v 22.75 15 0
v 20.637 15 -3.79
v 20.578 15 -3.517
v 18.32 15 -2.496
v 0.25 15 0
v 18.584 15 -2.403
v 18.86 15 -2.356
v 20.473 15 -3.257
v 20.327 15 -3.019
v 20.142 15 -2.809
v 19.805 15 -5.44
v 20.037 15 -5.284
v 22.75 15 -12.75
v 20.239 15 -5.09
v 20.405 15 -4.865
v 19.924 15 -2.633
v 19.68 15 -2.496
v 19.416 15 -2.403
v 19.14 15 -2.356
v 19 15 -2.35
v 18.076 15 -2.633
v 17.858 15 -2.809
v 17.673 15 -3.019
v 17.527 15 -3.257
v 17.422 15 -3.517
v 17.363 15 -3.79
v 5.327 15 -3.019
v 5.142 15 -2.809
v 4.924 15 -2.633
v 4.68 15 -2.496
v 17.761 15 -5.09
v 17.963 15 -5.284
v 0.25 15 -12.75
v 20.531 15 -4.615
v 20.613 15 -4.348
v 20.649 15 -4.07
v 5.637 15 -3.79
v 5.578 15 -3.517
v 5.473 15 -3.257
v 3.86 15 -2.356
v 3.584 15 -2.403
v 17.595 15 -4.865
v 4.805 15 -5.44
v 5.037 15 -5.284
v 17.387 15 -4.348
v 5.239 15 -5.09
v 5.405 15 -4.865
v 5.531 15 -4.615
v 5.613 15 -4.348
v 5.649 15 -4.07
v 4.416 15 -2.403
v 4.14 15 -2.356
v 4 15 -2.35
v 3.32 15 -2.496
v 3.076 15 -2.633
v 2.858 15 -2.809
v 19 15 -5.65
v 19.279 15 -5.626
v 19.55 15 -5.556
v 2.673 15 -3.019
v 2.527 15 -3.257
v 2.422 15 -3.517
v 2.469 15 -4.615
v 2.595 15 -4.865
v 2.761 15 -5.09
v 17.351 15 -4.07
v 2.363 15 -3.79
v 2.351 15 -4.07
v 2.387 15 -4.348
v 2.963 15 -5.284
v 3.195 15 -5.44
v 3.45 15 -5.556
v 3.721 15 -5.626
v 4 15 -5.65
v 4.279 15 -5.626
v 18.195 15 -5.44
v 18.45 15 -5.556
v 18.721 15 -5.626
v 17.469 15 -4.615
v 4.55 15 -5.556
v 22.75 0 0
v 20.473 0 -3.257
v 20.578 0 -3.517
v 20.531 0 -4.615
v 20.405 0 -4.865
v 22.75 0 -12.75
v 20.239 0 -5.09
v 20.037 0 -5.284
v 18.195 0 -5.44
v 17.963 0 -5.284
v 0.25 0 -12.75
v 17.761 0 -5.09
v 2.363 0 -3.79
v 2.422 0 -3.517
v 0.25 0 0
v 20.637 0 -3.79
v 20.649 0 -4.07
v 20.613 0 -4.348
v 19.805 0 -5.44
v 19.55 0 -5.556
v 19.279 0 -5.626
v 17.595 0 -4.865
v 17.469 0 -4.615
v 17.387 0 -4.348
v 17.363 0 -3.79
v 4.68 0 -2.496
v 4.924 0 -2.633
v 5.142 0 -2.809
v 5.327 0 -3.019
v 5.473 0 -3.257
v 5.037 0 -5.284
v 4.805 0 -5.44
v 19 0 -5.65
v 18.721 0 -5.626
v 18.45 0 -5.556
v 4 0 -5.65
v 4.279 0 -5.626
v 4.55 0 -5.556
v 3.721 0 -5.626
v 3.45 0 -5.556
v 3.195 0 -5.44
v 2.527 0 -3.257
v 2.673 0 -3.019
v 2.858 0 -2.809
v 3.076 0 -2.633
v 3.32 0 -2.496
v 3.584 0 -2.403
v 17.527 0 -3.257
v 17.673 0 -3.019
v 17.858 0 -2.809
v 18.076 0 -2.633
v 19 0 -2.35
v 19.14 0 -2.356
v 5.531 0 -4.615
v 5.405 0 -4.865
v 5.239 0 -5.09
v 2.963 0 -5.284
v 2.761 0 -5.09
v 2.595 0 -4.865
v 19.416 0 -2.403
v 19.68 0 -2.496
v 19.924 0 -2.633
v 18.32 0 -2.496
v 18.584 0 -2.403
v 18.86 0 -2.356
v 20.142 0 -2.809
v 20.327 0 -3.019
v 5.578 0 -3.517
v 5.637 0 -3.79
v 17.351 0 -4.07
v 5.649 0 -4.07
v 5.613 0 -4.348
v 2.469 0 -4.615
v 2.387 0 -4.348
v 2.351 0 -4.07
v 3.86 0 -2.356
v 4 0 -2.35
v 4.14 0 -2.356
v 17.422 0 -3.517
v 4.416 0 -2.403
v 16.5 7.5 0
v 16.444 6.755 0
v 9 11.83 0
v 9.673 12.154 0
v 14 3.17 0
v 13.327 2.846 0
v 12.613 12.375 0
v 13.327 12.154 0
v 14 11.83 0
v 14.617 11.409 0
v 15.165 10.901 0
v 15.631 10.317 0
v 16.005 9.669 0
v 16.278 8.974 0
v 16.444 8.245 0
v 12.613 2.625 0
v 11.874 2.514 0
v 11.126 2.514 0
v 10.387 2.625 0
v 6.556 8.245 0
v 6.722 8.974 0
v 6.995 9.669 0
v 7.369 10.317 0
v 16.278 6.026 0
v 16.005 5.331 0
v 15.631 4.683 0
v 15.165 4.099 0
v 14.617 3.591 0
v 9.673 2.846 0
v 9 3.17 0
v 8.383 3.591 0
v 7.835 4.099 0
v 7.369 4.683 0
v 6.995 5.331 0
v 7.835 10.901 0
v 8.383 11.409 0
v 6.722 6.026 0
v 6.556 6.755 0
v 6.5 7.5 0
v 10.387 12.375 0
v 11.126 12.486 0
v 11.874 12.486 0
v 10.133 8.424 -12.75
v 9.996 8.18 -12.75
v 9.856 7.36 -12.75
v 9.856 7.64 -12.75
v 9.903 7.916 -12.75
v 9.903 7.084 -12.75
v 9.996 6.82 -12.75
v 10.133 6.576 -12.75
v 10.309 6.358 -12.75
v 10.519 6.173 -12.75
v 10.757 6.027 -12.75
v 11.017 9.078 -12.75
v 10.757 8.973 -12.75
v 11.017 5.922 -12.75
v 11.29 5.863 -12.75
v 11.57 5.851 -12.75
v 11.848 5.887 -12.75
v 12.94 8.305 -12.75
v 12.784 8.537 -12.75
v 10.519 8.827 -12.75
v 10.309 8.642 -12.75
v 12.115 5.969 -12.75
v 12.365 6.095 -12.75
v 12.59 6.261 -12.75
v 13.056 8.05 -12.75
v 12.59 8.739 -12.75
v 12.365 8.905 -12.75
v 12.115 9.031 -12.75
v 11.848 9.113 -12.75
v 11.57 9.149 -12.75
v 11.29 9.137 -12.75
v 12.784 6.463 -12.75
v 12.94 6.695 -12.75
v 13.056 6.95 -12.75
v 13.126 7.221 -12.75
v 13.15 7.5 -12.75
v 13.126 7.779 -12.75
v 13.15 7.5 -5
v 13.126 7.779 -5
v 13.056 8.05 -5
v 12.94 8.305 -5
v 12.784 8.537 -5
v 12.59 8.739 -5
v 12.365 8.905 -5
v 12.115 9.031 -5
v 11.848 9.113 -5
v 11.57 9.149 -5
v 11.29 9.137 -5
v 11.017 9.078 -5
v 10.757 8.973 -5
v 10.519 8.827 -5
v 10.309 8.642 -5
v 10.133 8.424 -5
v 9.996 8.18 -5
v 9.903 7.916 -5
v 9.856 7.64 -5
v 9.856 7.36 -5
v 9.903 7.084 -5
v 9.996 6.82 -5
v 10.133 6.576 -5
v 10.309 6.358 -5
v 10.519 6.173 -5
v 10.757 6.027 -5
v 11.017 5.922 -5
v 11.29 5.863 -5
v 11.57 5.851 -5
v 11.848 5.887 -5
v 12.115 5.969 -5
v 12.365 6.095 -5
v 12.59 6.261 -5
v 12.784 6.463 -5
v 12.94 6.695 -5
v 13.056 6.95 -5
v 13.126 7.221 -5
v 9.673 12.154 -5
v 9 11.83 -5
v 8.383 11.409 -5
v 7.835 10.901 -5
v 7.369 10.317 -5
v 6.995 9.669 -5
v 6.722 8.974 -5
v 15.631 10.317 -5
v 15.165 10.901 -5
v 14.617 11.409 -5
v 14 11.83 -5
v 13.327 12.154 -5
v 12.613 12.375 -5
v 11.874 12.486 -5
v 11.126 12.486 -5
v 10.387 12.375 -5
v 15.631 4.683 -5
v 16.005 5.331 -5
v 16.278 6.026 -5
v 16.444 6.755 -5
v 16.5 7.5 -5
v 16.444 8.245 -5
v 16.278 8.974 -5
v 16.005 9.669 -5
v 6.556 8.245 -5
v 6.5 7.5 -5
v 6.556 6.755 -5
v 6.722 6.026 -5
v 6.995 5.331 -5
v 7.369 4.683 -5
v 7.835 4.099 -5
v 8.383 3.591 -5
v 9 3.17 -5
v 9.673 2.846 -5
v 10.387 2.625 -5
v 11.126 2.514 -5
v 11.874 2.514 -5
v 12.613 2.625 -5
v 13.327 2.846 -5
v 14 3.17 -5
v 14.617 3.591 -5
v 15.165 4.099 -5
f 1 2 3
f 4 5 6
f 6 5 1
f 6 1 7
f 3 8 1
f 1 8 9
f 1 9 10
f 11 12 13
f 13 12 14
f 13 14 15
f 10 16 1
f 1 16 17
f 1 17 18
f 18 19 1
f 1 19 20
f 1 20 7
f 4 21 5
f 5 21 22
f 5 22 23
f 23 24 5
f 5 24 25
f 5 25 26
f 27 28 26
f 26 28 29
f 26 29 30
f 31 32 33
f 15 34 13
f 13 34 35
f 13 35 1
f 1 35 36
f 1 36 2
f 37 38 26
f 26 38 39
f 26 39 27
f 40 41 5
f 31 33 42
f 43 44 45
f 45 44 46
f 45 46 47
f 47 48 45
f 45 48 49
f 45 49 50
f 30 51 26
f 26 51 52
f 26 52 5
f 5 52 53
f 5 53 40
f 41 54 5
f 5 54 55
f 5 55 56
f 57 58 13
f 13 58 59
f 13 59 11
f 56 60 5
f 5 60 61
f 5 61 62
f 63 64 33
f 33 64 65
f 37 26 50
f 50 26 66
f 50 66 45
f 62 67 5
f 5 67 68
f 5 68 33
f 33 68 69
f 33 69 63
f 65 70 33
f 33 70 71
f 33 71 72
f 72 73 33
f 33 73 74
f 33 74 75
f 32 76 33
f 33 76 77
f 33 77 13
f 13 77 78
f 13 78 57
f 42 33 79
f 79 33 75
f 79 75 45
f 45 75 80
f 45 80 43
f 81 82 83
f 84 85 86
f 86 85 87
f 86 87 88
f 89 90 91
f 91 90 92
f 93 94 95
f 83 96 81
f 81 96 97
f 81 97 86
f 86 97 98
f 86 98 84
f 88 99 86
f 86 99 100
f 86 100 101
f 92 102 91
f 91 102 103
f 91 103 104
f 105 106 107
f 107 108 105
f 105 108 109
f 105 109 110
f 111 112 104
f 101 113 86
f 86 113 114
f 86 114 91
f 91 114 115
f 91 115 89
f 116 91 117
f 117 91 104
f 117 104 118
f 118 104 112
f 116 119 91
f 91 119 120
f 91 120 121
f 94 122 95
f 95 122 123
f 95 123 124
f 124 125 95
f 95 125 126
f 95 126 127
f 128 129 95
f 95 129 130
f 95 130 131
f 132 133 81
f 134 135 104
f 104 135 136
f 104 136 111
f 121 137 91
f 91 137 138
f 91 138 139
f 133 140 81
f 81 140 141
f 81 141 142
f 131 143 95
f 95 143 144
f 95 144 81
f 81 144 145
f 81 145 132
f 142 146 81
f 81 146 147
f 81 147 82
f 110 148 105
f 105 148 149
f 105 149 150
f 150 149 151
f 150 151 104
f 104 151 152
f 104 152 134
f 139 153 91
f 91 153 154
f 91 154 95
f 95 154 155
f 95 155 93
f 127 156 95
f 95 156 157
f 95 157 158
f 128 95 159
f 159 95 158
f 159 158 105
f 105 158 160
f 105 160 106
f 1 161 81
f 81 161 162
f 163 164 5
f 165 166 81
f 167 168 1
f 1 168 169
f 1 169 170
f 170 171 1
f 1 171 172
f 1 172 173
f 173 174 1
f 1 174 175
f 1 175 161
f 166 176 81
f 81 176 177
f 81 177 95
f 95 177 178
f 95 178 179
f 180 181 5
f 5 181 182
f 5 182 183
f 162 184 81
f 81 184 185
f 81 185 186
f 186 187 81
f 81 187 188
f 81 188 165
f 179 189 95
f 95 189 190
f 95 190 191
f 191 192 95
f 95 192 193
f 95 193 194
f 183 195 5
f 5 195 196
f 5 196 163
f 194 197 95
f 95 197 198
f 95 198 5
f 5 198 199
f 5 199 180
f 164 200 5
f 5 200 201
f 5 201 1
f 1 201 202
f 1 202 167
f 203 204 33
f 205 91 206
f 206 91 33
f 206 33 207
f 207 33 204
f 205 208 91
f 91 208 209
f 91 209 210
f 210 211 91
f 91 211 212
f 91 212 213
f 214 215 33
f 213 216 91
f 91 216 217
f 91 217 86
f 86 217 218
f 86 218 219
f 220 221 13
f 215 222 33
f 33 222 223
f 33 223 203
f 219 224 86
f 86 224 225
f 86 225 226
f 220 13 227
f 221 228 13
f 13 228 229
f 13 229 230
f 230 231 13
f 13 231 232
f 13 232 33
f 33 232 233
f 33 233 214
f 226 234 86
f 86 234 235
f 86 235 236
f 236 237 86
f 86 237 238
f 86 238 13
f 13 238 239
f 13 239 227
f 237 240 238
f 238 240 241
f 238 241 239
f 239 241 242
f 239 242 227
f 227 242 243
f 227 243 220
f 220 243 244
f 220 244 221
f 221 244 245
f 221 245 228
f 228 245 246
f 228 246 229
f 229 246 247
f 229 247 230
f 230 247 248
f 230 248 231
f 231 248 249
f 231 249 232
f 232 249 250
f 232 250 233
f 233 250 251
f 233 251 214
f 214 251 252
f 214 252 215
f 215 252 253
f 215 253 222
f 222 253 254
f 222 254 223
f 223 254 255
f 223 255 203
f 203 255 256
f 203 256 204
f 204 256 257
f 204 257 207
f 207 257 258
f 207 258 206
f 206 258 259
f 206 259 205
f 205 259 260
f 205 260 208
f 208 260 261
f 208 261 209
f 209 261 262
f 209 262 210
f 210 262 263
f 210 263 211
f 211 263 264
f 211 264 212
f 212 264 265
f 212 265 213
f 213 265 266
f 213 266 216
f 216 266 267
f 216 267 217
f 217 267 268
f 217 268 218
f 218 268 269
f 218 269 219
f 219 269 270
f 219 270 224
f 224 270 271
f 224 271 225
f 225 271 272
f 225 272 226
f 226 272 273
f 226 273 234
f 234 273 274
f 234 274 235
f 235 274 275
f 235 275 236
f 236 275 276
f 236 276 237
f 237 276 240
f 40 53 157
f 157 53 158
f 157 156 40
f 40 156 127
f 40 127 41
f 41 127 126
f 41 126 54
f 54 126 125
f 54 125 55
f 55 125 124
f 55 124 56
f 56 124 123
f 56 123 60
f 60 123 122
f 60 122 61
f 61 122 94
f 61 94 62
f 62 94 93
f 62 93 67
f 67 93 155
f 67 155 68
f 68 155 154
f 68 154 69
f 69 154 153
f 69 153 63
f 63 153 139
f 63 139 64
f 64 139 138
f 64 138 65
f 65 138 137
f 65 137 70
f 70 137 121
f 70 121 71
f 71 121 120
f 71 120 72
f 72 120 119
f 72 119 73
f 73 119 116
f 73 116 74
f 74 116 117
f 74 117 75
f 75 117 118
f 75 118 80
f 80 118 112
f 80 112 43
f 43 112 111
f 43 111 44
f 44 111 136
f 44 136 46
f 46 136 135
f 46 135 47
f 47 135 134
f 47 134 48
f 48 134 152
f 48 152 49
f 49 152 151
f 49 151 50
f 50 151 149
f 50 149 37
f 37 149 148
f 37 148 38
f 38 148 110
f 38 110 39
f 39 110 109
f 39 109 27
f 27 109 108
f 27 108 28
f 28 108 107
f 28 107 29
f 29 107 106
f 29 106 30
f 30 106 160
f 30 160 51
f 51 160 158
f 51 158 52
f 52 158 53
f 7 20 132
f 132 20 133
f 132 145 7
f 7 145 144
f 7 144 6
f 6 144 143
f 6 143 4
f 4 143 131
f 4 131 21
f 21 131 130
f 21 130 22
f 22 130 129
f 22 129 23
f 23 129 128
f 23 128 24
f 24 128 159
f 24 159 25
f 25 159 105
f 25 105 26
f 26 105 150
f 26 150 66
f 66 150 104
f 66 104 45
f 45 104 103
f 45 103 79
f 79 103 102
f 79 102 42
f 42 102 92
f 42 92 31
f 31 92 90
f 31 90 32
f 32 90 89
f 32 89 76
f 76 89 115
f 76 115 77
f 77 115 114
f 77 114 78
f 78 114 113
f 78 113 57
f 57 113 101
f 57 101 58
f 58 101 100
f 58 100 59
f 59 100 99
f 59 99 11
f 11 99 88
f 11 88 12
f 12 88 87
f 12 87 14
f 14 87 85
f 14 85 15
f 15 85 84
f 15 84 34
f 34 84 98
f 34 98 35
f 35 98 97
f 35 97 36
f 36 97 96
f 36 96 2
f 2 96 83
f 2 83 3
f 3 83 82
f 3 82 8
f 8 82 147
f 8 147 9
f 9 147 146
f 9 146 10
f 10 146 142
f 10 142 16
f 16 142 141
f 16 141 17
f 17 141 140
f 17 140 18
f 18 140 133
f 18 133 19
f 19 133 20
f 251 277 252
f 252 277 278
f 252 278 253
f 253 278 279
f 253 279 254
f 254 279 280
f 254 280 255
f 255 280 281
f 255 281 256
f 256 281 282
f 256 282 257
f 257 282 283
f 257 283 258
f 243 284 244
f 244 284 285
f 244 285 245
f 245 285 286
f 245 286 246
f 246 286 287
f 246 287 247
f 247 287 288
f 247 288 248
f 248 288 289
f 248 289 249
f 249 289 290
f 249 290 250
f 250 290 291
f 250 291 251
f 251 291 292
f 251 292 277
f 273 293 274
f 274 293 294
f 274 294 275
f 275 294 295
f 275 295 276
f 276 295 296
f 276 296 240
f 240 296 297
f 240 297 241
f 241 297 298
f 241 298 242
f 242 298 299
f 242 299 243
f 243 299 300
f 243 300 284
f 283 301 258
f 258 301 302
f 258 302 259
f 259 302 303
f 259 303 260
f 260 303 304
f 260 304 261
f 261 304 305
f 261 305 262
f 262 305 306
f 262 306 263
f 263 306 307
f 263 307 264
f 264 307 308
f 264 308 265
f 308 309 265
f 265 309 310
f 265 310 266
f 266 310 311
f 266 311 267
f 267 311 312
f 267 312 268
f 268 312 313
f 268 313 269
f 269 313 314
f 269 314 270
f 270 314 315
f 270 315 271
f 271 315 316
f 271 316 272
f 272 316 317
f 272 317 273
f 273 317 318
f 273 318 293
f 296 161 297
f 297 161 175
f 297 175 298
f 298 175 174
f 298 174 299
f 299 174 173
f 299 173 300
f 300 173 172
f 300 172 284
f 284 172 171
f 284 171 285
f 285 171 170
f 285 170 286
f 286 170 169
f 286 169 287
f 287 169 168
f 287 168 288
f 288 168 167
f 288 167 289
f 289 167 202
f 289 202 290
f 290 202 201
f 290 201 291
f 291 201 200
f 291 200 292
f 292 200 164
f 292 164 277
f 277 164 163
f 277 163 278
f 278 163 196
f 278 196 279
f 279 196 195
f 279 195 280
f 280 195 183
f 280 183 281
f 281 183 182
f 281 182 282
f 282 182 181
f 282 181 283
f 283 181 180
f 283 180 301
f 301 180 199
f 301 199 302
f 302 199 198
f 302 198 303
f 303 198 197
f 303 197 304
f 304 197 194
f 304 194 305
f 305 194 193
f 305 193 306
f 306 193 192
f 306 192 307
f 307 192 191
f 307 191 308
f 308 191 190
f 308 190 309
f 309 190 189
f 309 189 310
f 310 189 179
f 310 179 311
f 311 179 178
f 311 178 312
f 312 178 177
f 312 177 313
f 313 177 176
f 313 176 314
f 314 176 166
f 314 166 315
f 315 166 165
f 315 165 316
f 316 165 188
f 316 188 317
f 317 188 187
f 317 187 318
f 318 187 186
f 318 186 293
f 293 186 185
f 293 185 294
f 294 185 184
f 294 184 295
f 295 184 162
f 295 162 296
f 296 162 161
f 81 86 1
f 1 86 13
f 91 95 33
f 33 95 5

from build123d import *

# Parameters (mm, degrees)
SKETCH1_W           = 23
SKETCH1_H           = 12.75
SKETCH1_R           = 1.65
BOSS_EXTRUDE1_DEPTH = 15
SKETCH2_R           = 1.65
CUT_EXTRUDE1_DEPTH  = 31.274783236
SKETCH3_R           = 5
CUT_EXTRUDE2_DEPTH  = 5
SKETCH4_OUTSIDE_W   = 31.054
SKETCH4_OUTSIDE_H   = 20.804
SKETCH4_OUTSIDE_W_2 = 22.5
SKETCH4_OUTSIDE_H_2 = 12.75
CUT_EXTRUDE3_DEPTH  = 31.274783236


with BuildPart() as part:
    # Sketch1 → Boss-Extrude1 (new body)
    with BuildSketch(Plane(origin=(0, 0, 0), x_dir=(1, 0, 0), z_dir=(0, 1, 0))):
        with Locations((11.5, 6.375)):
            Rectangle(SKETCH1_W, SKETCH1_H)
        with Locations(Location((4, 4, 0), (0, 0, 270))):
            Circle(SKETCH1_R, mode=Mode.SUBTRACT)
        with Locations(Location((19, 4, 0), (0, 0, 270))):
            Circle(SKETCH1_R, mode=Mode.SUBTRACT)
    extrude(amount=BOSS_EXTRUDE1_DEPTH)

    # Sketch2 → Cut-Extrude1 (cut, through all)
    with BuildSketch(Plane.XY):
        with Locations((11.5, 7.5)):
            Circle(SKETCH2_R)
    extrude(amount=-CUT_EXTRUDE1_DEPTH, mode=Mode.SUBTRACT)

    # Sketch3 → Cut-Extrude2 (cut)
    with BuildSketch(Plane.XY):
        with Locations((11.5, 7.5)):
            Circle(SKETCH3_R)
    extrude(amount=-CUT_EXTRUDE2_DEPTH, mode=Mode.SUBTRACT)

    # Sketch4 outside → Cut-Extrude3 (cut, through all)
    with BuildSketch(Plane(origin=(0, 15, 0), x_dir=(1, 0, 0), z_dir=(0, 1, 0))):
        with Locations((11.5, 6.375)):
            Rectangle(SKETCH4_OUTSIDE_W, SKETCH4_OUTSIDE_H)
        with Locations((11.5, 6.375)):
            Rectangle(SKETCH4_OUTSIDE_W_2, SKETCH4_OUTSIDE_H_2, mode=Mode.SUBTRACT)
    extrude(amount=-CUT_EXTRUDE3_DEPTH, mode=Mode.SUBTRACT)


solid = part.part
